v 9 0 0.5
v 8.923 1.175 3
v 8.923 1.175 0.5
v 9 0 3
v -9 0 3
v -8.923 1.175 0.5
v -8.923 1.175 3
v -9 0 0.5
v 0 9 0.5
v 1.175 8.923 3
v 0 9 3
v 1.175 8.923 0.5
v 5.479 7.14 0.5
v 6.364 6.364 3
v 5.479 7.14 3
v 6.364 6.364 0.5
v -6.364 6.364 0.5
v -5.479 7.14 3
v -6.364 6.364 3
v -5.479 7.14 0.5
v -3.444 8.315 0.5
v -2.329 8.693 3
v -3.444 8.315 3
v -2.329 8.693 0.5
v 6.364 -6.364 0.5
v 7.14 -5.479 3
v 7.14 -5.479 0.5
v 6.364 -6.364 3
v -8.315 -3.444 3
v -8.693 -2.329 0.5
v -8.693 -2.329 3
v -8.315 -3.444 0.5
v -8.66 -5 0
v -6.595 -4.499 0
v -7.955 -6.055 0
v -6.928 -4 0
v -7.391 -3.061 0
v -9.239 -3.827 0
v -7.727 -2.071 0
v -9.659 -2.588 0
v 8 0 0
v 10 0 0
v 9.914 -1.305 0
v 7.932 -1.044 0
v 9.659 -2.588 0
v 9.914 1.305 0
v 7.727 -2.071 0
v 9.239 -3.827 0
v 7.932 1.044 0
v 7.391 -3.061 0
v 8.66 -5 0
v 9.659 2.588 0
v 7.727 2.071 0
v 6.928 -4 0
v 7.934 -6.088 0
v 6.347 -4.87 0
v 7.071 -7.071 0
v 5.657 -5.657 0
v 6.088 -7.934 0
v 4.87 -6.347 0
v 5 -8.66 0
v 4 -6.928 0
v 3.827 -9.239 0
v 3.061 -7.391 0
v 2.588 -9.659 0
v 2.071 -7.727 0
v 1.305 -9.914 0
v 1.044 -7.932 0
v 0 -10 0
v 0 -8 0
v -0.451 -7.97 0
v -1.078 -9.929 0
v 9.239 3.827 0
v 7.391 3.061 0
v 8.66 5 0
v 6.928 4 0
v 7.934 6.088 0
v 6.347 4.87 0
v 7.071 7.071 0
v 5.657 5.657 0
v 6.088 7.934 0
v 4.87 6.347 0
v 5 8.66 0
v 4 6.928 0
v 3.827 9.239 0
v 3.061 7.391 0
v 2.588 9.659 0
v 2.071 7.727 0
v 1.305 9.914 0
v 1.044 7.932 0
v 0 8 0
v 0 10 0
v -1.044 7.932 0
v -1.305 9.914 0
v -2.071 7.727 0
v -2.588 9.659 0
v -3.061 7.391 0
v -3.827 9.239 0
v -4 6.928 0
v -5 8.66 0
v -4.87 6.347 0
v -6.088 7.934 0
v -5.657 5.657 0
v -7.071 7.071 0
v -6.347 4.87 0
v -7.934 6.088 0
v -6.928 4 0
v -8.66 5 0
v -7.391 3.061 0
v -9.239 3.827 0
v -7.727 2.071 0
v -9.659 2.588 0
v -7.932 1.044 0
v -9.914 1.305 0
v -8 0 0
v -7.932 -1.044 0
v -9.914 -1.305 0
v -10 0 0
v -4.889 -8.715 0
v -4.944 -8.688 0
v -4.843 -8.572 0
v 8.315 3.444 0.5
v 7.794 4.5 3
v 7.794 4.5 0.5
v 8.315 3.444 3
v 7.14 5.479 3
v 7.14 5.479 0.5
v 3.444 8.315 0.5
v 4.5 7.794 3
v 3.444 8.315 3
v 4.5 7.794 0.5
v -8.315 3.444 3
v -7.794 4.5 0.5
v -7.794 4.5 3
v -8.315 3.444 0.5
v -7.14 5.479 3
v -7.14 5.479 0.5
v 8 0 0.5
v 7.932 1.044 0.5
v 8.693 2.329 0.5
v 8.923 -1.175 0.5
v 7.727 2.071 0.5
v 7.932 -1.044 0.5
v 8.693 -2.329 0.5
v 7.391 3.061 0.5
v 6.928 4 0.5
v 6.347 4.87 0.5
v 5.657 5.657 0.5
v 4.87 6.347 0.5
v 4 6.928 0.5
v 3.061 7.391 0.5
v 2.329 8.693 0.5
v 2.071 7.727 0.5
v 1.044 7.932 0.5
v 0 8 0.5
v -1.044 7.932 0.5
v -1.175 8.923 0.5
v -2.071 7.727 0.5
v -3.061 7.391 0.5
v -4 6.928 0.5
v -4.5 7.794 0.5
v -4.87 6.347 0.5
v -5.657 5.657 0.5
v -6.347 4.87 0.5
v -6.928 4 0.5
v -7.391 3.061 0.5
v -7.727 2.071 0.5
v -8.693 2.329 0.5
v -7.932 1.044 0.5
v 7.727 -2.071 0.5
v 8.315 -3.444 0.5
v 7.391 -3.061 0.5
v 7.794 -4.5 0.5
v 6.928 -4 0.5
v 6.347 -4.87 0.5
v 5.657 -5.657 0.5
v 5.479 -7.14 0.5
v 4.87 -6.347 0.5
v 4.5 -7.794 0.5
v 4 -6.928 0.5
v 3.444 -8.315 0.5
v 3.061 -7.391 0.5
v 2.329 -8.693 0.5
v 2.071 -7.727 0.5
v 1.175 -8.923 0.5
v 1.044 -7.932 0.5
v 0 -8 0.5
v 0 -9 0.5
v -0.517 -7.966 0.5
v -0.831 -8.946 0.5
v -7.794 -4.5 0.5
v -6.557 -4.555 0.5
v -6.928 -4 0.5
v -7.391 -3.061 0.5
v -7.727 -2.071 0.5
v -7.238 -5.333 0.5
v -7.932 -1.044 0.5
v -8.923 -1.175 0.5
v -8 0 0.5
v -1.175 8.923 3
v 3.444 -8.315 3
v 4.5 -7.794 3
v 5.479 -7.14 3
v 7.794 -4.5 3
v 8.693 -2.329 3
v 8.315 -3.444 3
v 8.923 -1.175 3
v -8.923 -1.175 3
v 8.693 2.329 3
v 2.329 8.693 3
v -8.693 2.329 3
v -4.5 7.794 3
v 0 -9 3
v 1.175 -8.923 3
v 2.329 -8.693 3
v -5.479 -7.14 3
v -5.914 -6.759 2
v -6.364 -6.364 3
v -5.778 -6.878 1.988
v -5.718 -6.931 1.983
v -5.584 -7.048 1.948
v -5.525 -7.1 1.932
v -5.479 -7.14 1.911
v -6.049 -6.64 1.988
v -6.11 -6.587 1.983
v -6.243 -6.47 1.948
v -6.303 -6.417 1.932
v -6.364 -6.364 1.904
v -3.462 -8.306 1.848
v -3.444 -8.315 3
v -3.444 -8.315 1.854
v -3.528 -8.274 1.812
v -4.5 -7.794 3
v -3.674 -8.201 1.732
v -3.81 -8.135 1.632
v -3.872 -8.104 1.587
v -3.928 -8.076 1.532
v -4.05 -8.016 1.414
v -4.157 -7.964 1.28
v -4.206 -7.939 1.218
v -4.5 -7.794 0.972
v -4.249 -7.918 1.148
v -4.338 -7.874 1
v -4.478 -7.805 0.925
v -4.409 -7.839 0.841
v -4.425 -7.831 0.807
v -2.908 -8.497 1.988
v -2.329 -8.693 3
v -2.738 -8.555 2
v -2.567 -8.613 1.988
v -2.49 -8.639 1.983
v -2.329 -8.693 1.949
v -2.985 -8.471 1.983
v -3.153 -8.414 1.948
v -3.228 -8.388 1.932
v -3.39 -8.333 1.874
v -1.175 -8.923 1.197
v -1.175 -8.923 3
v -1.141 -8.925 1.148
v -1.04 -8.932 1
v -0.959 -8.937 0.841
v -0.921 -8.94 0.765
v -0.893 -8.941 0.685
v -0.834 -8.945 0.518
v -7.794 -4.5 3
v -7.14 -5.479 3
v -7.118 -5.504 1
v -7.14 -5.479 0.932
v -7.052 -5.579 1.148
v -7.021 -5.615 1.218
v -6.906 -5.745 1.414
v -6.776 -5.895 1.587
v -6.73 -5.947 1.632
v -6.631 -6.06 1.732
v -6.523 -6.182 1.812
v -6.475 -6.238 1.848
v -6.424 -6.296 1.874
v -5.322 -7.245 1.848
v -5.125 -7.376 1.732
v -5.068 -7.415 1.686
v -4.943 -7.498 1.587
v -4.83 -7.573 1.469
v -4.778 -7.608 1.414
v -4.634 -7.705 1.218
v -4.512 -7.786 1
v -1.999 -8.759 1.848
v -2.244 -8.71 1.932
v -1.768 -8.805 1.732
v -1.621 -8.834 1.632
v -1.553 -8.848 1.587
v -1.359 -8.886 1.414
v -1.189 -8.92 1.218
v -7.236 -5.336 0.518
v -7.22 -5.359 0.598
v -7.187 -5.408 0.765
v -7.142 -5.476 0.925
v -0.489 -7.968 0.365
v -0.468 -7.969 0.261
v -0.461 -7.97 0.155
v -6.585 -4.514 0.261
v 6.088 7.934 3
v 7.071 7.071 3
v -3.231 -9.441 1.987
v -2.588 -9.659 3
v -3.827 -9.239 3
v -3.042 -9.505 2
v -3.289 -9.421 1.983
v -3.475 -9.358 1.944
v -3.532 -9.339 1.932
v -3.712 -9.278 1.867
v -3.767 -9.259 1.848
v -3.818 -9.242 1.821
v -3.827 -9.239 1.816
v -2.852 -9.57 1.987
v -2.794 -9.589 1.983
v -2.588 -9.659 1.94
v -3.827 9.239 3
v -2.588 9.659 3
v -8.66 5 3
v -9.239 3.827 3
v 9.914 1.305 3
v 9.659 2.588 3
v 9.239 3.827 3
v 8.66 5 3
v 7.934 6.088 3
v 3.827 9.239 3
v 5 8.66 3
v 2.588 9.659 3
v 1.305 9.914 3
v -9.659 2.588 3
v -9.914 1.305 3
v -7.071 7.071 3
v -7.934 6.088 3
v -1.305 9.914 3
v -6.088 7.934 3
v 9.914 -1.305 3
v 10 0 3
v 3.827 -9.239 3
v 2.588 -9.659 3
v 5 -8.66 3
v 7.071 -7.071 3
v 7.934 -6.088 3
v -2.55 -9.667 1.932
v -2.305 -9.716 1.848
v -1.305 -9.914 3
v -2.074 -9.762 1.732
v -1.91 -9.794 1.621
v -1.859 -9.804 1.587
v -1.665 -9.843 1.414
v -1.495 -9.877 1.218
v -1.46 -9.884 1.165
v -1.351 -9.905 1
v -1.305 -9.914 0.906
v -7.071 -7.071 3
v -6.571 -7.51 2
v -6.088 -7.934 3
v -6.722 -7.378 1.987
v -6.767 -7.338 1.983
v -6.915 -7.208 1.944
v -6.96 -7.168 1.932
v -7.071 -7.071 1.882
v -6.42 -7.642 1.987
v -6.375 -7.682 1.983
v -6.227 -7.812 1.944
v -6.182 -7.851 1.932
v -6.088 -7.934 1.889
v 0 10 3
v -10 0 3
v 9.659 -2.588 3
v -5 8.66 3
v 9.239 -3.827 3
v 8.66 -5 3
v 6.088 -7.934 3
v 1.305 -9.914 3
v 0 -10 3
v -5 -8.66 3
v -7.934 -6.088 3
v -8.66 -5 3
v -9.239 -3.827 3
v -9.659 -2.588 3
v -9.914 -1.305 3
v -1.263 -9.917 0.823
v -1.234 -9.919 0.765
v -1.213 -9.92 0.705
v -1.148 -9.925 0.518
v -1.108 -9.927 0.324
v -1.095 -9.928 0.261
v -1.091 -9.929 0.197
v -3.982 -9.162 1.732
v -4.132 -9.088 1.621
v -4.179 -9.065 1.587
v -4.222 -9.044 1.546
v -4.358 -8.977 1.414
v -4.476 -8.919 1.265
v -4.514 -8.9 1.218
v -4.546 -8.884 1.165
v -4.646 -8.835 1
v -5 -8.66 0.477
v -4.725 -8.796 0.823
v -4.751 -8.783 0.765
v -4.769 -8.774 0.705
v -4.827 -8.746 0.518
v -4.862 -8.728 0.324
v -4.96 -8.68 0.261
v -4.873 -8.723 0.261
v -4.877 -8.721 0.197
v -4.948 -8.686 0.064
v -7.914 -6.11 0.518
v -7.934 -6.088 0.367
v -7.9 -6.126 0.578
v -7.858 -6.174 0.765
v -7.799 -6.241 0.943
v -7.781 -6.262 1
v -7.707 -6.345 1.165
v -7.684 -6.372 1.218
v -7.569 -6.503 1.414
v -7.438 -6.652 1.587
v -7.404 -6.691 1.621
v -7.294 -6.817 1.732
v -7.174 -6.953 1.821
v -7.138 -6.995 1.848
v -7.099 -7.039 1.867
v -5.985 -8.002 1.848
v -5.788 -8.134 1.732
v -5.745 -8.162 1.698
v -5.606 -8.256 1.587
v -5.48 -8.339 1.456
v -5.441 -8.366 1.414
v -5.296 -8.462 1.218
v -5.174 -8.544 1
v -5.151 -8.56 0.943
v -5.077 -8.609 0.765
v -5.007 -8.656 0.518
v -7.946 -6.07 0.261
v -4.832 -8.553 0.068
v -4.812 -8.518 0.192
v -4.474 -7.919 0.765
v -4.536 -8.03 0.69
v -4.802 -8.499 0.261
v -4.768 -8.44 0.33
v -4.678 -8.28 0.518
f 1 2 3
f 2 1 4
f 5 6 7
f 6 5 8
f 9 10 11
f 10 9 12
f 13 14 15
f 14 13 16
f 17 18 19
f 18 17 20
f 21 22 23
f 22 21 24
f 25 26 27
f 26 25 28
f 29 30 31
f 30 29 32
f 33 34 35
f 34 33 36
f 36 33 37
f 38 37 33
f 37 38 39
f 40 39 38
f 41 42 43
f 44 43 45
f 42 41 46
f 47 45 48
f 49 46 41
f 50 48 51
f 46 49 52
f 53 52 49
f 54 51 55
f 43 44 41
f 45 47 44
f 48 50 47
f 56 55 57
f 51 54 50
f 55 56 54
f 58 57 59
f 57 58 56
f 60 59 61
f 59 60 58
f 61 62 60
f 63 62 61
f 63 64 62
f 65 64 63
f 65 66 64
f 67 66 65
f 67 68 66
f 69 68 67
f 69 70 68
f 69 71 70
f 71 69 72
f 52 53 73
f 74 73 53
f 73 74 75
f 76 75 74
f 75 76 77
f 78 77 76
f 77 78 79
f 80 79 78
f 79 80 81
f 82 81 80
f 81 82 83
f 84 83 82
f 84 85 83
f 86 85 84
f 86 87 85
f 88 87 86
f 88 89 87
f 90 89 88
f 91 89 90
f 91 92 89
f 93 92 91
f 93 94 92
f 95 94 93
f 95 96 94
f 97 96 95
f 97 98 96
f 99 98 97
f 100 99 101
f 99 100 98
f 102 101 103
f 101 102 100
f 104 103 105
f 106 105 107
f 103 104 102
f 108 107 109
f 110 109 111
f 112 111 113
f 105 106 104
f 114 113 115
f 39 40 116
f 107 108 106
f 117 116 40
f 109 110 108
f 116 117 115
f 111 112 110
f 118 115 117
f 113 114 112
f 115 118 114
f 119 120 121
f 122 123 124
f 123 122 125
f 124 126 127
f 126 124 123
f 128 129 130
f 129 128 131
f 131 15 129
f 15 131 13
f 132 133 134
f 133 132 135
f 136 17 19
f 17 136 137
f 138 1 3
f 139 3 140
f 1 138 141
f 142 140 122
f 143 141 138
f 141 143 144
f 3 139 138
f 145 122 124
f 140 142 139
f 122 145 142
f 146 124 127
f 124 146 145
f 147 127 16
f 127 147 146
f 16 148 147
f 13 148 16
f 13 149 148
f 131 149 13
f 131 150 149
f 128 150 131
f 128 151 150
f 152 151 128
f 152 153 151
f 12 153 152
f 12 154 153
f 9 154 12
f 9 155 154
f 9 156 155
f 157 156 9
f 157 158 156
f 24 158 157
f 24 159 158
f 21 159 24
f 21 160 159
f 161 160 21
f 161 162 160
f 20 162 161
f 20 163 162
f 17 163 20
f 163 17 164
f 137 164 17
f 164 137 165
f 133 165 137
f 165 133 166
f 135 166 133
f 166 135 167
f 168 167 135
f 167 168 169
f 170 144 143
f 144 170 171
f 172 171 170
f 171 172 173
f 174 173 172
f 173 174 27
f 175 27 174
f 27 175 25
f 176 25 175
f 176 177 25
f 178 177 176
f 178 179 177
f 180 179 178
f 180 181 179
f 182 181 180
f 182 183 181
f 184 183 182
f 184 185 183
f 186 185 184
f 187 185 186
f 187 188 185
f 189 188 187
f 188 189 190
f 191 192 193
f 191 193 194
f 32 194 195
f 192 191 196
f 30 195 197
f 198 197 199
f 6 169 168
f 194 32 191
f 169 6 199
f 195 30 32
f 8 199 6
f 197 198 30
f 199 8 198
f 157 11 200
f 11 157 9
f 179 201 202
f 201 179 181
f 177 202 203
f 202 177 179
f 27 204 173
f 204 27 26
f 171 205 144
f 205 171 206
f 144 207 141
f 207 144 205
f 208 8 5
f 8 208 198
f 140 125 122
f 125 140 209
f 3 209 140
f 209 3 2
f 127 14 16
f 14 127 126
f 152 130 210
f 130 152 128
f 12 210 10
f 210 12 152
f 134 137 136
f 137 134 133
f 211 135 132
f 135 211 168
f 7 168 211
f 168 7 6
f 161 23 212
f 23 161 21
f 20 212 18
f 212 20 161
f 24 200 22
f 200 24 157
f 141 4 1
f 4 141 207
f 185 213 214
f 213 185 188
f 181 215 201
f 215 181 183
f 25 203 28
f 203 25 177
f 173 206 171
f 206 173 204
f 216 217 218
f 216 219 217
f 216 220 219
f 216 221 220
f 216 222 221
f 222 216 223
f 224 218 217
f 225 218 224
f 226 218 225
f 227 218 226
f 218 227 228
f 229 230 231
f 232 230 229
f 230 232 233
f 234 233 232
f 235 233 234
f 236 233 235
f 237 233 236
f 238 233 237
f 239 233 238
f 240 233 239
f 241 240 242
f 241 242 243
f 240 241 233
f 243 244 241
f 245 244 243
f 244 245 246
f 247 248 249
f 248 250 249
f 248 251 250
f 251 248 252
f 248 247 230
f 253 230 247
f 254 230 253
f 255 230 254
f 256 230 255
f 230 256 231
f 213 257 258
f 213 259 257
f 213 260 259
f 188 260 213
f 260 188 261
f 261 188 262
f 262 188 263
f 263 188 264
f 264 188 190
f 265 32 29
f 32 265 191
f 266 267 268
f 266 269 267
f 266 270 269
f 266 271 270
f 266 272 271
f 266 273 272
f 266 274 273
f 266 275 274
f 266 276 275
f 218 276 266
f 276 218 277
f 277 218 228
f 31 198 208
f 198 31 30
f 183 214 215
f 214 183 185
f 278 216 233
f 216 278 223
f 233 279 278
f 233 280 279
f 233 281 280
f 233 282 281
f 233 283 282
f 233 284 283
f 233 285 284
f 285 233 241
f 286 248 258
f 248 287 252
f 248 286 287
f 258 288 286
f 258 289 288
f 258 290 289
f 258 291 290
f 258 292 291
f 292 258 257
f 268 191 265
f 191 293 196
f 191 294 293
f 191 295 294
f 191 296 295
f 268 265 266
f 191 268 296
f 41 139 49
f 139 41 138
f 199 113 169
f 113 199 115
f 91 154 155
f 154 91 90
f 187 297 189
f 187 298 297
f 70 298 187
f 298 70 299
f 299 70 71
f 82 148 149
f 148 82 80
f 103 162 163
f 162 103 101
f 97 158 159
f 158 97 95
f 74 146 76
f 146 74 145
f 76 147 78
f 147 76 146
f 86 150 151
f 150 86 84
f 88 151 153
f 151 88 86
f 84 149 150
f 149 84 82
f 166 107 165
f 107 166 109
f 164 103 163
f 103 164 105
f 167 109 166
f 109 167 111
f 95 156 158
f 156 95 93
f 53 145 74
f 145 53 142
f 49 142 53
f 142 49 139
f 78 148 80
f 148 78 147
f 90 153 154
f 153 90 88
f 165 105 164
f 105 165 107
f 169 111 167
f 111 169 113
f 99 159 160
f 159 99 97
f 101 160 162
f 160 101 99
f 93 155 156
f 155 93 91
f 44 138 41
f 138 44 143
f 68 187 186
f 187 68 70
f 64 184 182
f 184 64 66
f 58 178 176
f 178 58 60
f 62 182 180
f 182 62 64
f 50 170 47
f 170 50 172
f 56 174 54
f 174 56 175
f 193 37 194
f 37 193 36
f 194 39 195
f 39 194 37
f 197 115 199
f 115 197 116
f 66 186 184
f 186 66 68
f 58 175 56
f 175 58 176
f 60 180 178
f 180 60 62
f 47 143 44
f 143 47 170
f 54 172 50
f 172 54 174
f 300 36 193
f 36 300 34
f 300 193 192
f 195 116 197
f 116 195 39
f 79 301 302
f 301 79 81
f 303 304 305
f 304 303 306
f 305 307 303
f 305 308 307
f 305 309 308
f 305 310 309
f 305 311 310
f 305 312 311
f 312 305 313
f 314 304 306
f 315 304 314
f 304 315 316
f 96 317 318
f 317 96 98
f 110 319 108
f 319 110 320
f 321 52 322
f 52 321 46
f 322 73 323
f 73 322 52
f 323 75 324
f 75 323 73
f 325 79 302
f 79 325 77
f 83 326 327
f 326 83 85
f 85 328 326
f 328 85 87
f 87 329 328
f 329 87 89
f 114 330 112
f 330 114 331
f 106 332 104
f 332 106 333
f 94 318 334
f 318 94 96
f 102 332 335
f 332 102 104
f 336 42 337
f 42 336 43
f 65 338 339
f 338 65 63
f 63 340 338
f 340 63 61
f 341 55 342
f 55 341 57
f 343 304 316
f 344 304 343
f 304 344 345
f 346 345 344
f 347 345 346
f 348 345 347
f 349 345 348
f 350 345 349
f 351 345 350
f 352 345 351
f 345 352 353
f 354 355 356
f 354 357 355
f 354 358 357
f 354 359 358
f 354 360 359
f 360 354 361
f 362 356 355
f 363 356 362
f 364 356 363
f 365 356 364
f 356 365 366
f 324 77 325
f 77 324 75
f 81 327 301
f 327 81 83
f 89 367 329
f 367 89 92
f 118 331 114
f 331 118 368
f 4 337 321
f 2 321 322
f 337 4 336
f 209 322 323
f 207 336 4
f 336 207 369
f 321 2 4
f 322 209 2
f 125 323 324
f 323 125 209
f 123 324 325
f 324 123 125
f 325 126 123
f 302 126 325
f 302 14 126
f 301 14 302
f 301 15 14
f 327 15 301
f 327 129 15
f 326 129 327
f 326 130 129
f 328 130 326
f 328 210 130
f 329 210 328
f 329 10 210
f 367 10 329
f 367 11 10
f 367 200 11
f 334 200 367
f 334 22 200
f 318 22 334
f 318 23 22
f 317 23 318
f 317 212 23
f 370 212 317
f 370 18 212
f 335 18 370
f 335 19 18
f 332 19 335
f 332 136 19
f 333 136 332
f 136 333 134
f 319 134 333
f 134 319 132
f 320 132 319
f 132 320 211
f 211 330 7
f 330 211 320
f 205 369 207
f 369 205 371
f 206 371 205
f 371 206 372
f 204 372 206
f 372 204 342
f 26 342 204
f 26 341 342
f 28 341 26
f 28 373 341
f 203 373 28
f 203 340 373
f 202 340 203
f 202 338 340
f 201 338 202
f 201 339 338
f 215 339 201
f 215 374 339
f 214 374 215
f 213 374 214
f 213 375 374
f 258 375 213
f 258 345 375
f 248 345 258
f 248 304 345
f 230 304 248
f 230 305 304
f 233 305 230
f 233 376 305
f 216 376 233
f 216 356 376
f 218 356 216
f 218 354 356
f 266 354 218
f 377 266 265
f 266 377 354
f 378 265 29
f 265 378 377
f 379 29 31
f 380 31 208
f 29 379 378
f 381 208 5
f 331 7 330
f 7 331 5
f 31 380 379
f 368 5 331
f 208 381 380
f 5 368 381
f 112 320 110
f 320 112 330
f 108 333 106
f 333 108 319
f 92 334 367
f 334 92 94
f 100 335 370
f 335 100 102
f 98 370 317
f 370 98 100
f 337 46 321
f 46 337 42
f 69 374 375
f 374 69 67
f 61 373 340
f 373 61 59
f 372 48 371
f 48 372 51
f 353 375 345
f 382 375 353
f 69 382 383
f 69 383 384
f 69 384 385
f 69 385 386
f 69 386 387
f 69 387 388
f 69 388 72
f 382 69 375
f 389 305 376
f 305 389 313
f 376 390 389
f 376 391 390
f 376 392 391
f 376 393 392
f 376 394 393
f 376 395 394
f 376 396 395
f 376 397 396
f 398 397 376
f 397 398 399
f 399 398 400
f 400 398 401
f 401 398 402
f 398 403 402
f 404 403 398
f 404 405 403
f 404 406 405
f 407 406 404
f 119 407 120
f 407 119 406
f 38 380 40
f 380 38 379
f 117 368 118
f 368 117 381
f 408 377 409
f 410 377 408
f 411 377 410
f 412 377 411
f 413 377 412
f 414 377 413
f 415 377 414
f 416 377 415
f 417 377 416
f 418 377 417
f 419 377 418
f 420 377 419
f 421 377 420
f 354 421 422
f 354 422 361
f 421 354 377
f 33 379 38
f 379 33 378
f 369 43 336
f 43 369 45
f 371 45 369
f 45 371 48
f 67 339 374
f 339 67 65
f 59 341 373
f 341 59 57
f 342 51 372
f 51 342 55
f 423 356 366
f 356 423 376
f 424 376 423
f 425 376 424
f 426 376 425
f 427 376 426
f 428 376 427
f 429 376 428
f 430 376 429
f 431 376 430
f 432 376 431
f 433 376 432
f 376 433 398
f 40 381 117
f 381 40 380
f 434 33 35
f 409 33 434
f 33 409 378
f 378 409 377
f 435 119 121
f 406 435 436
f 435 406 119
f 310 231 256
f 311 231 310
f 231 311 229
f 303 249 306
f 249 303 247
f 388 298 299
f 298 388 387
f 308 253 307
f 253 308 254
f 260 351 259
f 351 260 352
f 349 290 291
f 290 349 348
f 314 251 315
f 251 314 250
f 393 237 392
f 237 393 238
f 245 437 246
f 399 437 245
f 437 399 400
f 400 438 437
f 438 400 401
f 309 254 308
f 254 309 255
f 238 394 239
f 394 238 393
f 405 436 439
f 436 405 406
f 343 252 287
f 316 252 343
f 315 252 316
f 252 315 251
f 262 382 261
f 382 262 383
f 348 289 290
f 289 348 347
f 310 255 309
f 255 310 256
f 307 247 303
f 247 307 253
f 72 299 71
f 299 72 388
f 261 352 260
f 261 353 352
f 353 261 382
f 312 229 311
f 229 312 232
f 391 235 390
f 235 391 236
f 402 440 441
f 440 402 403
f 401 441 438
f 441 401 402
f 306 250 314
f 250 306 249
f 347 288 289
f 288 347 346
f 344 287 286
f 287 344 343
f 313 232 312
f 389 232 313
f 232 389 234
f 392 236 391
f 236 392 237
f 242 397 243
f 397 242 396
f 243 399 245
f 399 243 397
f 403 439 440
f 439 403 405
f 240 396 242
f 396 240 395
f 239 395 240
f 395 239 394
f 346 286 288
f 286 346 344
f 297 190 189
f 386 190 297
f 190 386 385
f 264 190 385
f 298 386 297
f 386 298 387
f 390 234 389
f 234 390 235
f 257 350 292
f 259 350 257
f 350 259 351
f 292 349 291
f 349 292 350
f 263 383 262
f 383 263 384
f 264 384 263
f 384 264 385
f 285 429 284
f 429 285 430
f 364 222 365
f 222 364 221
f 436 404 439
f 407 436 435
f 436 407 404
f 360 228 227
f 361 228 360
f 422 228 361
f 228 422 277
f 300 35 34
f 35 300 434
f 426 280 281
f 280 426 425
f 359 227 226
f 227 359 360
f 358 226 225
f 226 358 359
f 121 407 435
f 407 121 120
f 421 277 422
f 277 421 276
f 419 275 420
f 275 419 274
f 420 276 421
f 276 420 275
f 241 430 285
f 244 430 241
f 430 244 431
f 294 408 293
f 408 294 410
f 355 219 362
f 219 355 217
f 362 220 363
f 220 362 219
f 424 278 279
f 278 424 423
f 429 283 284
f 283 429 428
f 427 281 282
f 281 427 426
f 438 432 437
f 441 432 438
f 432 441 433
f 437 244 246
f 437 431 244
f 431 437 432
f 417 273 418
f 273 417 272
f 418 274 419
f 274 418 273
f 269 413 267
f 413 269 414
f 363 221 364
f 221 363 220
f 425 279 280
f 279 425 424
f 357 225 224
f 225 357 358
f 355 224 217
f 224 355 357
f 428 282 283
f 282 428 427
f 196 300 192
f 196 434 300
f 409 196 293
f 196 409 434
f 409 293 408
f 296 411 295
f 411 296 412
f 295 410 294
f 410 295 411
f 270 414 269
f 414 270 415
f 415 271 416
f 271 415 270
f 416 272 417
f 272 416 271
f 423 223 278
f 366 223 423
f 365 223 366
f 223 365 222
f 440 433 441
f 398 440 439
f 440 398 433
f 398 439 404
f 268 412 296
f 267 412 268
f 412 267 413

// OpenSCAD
// file: ../build_environments.scad
// build_environments.scad: modules to build level sections
//

module pool(diameter=10.0, wall_height=2.0, step_width=3.0, connections=[])
{
    difference() {
        union() {
        difference() {
            cylinder(h=0.5,r1=diameter+step_width,r2=diameter+step_width,$fn=48);
            translate([0,0,-0.1])
                cylinder(h=0.7,r1=diameter,r2=diameter,$fn=48);
        }
        difference() {
            cylinder(h=wall_height,r1=diameter+step_width+1.0,r2=diameter+step_width+1.0,$fn=48);
            translate([0,0,-0.1])
                cylinder(h=wall_height+0.2,r1=diameter+step_width,r2=diameter+step_width,$fn=48);
        }
        }
    
        for (c = connections)
        {
            rotate([0,90,0]) {
                angle = atan2(c[1],c[0]);
                rotate([-angle,0,0]) {
                    cylinder(h=diameter+5.0,r1=c[2],r2=c[2],$fn=48);
                }
            }
        }
    }
}

module straight(length=10.0, width=2.0, dy1=0.0, dy2=0.0, dz=0.0)
{
    dims = [0, 0, 0, 0, 0, (dz/length)];
    matrix = [
        [ 1, dims[0], dims[1], 0 ],
        [ dims[2], 1, dims[4], 0 ],
        [ dims[5], dims[3], 1, 0 ],
        [ 0, 0, 0, 1 ]
    ];
    multmatrix(matrix)
    difference() {
        translate([dy1,0,0])
        union() {
            rotate([0,90,0]) {
                difference() {
                    cylinder(h=(length-dy1-dy2),r1=width+1.0,r2=width+1.0,$fn=24);
                    translate([0,0,-0.1])
                        cylinder(h=(length-dy1-dy2+0.2),r1=width,r2=width,$fn=24);
                }
                difference() {
                    cylinder(h=1.0,r1=width+2.0,r2=width+2.0,$fn=24);
                    translate([0,0,-0.1])
                        cylinder(h=1.2,r1=width,r2=width,$fn=24);
                }
                translate([0,0,(length-dy1-dy2)-1.0]) {
                    difference() {
                        cylinder(h=1.0,r1=width+2.0,r2=width+2.0,$fn=24);
                        translate([0,0,-0.1])
                            cylinder(h=1.2,r1=width,r2=width,$fn=24);
                    }
                }
            }
        }
        translate([0,0,-(2*width+4.0)/2])
            cube([3*length,3*length,2*width+4.0],center=true);
    }
}

module curve(p0=[0,0], center=[0,0], dir=1, angle=0.0, width=2.0)
{
    radius = sqrt((p0[0]-center[0])*(p0[0]-center[0]) + (p0[1]-center[1])*(p0[1]-center[1]));
    if (dir == 0) {
        difference() {
            rotate([0,0,-90])
            difference() {
                rotate_extrude(angle = angle, convexity = 10, $fn=32)
                    translate([radius, 0, 0])
                        circle(r = width+1.0,$fn=24);
                rotate([0,0,-1.0])
                    rotate_extrude(angle = angle+2.0, convexity = 10, $fn=32)
                        translate([radius, 0, 0])
                            circle(r = width,$fn=24);
            }
            translate([0,0,-(2*width+4.0)/2])
                cube([5*radius,5*radius,2*width+4.0],center=true);
        }
    }
    else {
        difference() {
            rotate([0,0,90])
            difference() {
                rotate_extrude(angle = -angle, convexity = 10, $fn=32)
                    translate([radius, 0, 0])
                        circle(r = width+1.0,$fn=24);
                rotate([0,0,1.0])
                    rotate_extrude(angle = -angle-2.0, convexity = 10, $fn=32)
                        translate([radius, 0, 0])
                            circle(r = width,$fn=24);
            }
            translate([0,0,-(2*width+4.0)/2])
                cube([5*radius,5*radius,2*width+4.0],center=true);
        }
    }

}

// test pool
//pool(diameter=12.0000, wall_height=3.0000, step_width=3.0000, connections=[[0.0000,-26.0000,2.0000], [23.6074,0.0000,2.0000]]);

// test straight, slope
//straight(length=26.0000, width=2.0000, dy1=11.8322, dy2=6.7082, dz=0.0000);
//straight(length=29.1549, width=12.0000, dy1=0.0000, dy2=0.0000, dz=-15.0000);

// test curve
//curve(p0=[23.6074, 0.0000], center=[23.6074, 5.0000], dir=0, angle=60.1011, width=2.0000);
//curve(p0=[33.6426, 12.4219], center=[37.9771, 9.9295], dir=1, angle=120.4627, width=2.0000);
// main file
use <../build_environments.scad>;
pool(diameter=8.0000, wall_height=3.0000, step_width=1.0000, connections=[[-16.0000,-50.0000,2.0000], [-28.0000,-32.0000,2.0000]]);
